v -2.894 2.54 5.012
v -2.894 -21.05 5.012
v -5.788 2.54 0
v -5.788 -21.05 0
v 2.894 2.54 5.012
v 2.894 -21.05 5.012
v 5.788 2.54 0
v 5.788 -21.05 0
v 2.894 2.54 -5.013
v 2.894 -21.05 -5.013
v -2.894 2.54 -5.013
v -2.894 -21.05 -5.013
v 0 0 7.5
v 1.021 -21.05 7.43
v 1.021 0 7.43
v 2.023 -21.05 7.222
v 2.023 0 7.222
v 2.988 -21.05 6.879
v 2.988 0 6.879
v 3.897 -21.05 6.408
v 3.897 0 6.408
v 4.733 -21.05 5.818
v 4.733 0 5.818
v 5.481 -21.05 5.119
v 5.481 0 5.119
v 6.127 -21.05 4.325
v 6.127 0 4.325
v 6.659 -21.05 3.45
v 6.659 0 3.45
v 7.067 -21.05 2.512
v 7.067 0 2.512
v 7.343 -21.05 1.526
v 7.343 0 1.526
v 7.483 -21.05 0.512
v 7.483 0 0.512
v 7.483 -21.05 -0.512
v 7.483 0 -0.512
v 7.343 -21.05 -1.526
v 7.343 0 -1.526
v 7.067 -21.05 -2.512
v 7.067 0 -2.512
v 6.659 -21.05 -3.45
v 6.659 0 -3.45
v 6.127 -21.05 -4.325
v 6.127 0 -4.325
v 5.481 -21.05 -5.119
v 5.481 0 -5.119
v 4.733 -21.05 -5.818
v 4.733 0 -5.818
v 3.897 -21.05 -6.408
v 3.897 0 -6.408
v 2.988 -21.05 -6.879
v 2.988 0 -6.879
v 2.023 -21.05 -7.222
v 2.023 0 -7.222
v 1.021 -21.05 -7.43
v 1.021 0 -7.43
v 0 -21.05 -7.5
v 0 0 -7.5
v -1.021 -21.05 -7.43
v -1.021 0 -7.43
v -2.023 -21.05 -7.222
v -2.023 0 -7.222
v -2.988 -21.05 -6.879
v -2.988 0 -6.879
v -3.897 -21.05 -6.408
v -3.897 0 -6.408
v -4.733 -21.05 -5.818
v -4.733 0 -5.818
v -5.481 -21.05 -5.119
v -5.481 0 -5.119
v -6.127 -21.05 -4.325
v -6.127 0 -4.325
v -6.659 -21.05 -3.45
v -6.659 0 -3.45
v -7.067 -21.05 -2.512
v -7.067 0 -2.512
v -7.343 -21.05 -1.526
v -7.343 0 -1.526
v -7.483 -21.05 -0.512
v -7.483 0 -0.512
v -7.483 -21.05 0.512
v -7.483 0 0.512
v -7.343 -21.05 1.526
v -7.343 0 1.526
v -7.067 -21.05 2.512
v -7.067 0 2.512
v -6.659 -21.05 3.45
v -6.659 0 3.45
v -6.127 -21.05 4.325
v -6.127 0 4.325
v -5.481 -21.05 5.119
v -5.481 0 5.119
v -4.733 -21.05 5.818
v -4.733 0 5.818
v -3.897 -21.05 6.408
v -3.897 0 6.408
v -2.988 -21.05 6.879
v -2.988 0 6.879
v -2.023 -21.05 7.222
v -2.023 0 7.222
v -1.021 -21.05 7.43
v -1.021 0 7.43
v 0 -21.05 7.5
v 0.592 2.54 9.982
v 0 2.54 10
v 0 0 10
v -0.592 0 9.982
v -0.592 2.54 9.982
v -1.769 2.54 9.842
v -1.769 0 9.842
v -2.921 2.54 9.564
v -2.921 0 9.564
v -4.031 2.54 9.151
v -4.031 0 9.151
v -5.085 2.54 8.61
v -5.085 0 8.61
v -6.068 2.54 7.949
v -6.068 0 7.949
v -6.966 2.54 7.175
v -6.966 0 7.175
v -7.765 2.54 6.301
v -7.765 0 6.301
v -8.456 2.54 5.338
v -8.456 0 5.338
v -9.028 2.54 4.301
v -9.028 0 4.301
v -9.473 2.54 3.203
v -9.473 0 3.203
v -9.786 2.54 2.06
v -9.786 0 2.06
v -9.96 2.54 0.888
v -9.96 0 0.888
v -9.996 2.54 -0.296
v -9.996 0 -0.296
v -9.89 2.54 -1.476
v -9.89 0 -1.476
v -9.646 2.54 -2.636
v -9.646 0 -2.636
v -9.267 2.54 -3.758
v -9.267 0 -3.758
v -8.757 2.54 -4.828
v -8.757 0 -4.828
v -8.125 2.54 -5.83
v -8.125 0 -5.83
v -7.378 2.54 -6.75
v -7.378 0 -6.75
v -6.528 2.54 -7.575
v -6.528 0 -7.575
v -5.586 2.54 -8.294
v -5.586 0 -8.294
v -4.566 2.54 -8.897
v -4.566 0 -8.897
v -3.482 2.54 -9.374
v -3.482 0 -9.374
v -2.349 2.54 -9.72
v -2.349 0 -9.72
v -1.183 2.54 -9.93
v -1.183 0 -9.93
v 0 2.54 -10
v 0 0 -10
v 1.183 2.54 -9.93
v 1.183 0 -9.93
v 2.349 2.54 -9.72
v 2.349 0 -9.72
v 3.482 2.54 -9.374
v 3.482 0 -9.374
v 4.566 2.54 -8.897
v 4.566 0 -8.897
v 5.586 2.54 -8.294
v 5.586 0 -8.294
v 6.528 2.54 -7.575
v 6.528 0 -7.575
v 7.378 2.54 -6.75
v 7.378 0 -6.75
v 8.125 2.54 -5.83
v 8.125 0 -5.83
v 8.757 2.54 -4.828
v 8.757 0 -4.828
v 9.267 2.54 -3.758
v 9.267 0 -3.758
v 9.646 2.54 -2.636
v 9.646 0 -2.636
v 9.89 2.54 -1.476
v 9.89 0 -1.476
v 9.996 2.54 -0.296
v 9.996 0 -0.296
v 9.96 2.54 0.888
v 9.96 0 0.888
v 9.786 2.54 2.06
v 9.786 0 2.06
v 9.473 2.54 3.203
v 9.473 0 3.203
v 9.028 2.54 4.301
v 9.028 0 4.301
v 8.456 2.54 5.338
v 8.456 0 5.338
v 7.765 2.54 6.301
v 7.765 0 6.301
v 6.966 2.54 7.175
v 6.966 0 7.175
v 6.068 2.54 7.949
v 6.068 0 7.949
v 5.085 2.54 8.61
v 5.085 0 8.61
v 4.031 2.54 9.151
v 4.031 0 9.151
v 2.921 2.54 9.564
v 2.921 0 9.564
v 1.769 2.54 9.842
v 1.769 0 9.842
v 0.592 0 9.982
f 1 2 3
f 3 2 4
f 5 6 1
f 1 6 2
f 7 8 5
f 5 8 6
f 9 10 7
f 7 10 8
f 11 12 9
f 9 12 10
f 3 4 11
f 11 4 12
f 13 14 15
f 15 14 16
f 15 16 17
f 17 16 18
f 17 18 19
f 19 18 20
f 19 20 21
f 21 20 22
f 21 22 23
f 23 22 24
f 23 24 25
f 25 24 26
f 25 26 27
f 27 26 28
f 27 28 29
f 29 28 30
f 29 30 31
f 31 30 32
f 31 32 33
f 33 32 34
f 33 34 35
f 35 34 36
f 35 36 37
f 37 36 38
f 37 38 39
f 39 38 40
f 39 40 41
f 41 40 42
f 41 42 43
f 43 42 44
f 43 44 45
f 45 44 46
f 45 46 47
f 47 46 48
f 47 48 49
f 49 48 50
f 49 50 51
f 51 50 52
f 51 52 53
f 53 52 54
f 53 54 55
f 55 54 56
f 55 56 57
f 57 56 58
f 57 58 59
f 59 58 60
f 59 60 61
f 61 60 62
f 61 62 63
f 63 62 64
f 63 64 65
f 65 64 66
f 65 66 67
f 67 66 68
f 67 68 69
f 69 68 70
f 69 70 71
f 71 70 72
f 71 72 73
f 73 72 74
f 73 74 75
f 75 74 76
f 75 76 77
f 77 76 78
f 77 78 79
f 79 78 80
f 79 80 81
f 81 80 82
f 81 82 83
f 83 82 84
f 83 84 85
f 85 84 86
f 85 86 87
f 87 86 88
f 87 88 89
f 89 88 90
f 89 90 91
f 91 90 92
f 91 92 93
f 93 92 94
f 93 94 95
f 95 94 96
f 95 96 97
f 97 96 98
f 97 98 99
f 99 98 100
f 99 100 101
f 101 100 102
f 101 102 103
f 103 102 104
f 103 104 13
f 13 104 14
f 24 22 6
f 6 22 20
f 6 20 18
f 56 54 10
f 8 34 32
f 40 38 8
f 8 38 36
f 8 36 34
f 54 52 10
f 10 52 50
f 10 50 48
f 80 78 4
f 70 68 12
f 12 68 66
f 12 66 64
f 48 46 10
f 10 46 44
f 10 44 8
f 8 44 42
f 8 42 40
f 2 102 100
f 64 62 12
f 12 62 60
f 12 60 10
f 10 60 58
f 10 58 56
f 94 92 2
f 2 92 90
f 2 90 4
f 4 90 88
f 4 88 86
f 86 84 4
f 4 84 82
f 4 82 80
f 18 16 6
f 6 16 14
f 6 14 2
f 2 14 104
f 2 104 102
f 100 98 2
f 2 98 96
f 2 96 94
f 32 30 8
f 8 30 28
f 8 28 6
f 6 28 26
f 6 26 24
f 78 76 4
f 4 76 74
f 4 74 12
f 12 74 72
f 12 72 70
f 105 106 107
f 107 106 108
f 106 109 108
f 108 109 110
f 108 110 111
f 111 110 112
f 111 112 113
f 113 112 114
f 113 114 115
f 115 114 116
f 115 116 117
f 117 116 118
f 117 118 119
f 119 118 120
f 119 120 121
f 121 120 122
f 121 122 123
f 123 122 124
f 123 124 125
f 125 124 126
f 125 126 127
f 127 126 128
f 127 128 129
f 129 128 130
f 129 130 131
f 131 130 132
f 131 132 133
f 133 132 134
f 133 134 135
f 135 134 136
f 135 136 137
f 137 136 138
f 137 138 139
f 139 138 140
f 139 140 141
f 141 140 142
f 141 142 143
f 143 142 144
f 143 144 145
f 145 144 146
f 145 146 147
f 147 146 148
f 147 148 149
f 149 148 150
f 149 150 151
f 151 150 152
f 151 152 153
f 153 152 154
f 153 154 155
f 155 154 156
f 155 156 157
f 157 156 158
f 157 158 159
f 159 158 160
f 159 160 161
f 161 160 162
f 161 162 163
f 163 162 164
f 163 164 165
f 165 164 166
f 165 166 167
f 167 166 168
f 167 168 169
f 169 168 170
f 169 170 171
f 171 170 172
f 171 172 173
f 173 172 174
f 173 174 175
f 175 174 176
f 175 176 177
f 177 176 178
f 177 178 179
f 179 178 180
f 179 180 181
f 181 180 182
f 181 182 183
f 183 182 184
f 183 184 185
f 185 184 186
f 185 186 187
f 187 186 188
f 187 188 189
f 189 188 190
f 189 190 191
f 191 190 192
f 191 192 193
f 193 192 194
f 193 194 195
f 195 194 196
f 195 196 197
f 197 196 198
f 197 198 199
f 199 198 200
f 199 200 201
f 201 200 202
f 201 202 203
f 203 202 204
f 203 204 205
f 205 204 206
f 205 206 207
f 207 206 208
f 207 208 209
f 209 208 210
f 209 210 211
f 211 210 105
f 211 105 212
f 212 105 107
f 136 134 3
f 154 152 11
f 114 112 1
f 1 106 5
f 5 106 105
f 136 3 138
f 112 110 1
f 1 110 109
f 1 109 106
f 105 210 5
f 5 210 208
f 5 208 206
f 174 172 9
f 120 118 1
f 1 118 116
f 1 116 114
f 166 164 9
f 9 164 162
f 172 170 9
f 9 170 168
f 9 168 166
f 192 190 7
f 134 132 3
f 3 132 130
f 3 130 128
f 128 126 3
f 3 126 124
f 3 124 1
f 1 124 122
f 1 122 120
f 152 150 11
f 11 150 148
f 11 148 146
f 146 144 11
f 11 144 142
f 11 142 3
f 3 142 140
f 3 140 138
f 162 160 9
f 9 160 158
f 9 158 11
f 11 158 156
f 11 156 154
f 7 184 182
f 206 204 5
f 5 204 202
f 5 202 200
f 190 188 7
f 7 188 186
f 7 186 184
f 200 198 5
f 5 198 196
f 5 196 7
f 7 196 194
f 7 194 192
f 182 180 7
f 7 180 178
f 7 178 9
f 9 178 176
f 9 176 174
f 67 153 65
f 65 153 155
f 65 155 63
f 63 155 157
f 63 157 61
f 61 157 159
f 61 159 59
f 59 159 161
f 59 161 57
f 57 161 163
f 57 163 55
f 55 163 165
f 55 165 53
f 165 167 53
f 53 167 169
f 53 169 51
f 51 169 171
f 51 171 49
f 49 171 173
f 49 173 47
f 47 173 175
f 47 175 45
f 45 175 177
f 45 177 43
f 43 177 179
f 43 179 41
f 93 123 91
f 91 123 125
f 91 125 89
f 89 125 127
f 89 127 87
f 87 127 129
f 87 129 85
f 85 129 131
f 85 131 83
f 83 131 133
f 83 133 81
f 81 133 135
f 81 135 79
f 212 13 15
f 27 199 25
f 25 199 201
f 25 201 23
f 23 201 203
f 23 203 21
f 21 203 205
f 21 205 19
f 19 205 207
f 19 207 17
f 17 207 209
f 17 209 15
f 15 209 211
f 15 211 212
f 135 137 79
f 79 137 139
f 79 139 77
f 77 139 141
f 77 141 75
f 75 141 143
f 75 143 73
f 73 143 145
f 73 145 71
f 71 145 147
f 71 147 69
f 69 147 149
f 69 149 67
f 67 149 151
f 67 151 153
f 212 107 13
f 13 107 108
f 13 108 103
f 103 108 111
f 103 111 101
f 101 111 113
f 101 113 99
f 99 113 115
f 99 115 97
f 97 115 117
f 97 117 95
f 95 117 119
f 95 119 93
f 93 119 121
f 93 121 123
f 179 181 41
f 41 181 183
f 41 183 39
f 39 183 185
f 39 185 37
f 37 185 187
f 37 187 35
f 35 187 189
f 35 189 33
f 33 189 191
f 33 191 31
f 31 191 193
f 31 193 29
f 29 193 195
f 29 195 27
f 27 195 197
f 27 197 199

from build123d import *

# Parameters (mm, degrees)
SKETCH1_R           = 7.5
BOSS_EXTRUDE1_DEPTH = 21.05
SKETCH1_3_R         = 10
BOSS_EXTRUDE2_DEPTH = 2.54


with BuildPart() as part:
    # Sketch1 → Boss-Extrude1 (new body)
    with BuildSketch(Plane(origin=(0, 0, 0), x_dir=(1, 0, 0), z_dir=(0, 1, 0))):
        Circle(SKETCH1_R)
        Polygon((2.893968224, -5.0125), (-2.893968224, -5.0125), (-5.787936449, 0), (-2.893968224, 5.0125), (2.893968224, 5.0125), (5.787936449, 0), align=None, mode=Mode.SUBTRACT)
    extrude(amount=-BOSS_EXTRUDE1_DEPTH)

    # Sketch1<3> → Boss-Extrude2 (add)
    with BuildSketch(Plane(origin=(0, 0, 0), x_dir=(1, 0, 0), z_dir=(0, 1, 0))):
        Circle(SKETCH1_3_R)
        Polygon((2.893968224, -5.0125), (-2.893968224, -5.0125), (-5.787936449, 0), (-2.893968224, 5.0125), (2.893968224, 5.0125), (5.787936449, 0), align=None, mode=Mode.SUBTRACT)
    extrude(amount=BOSS_EXTRUDE2_DEPTH)


solid = part.part
